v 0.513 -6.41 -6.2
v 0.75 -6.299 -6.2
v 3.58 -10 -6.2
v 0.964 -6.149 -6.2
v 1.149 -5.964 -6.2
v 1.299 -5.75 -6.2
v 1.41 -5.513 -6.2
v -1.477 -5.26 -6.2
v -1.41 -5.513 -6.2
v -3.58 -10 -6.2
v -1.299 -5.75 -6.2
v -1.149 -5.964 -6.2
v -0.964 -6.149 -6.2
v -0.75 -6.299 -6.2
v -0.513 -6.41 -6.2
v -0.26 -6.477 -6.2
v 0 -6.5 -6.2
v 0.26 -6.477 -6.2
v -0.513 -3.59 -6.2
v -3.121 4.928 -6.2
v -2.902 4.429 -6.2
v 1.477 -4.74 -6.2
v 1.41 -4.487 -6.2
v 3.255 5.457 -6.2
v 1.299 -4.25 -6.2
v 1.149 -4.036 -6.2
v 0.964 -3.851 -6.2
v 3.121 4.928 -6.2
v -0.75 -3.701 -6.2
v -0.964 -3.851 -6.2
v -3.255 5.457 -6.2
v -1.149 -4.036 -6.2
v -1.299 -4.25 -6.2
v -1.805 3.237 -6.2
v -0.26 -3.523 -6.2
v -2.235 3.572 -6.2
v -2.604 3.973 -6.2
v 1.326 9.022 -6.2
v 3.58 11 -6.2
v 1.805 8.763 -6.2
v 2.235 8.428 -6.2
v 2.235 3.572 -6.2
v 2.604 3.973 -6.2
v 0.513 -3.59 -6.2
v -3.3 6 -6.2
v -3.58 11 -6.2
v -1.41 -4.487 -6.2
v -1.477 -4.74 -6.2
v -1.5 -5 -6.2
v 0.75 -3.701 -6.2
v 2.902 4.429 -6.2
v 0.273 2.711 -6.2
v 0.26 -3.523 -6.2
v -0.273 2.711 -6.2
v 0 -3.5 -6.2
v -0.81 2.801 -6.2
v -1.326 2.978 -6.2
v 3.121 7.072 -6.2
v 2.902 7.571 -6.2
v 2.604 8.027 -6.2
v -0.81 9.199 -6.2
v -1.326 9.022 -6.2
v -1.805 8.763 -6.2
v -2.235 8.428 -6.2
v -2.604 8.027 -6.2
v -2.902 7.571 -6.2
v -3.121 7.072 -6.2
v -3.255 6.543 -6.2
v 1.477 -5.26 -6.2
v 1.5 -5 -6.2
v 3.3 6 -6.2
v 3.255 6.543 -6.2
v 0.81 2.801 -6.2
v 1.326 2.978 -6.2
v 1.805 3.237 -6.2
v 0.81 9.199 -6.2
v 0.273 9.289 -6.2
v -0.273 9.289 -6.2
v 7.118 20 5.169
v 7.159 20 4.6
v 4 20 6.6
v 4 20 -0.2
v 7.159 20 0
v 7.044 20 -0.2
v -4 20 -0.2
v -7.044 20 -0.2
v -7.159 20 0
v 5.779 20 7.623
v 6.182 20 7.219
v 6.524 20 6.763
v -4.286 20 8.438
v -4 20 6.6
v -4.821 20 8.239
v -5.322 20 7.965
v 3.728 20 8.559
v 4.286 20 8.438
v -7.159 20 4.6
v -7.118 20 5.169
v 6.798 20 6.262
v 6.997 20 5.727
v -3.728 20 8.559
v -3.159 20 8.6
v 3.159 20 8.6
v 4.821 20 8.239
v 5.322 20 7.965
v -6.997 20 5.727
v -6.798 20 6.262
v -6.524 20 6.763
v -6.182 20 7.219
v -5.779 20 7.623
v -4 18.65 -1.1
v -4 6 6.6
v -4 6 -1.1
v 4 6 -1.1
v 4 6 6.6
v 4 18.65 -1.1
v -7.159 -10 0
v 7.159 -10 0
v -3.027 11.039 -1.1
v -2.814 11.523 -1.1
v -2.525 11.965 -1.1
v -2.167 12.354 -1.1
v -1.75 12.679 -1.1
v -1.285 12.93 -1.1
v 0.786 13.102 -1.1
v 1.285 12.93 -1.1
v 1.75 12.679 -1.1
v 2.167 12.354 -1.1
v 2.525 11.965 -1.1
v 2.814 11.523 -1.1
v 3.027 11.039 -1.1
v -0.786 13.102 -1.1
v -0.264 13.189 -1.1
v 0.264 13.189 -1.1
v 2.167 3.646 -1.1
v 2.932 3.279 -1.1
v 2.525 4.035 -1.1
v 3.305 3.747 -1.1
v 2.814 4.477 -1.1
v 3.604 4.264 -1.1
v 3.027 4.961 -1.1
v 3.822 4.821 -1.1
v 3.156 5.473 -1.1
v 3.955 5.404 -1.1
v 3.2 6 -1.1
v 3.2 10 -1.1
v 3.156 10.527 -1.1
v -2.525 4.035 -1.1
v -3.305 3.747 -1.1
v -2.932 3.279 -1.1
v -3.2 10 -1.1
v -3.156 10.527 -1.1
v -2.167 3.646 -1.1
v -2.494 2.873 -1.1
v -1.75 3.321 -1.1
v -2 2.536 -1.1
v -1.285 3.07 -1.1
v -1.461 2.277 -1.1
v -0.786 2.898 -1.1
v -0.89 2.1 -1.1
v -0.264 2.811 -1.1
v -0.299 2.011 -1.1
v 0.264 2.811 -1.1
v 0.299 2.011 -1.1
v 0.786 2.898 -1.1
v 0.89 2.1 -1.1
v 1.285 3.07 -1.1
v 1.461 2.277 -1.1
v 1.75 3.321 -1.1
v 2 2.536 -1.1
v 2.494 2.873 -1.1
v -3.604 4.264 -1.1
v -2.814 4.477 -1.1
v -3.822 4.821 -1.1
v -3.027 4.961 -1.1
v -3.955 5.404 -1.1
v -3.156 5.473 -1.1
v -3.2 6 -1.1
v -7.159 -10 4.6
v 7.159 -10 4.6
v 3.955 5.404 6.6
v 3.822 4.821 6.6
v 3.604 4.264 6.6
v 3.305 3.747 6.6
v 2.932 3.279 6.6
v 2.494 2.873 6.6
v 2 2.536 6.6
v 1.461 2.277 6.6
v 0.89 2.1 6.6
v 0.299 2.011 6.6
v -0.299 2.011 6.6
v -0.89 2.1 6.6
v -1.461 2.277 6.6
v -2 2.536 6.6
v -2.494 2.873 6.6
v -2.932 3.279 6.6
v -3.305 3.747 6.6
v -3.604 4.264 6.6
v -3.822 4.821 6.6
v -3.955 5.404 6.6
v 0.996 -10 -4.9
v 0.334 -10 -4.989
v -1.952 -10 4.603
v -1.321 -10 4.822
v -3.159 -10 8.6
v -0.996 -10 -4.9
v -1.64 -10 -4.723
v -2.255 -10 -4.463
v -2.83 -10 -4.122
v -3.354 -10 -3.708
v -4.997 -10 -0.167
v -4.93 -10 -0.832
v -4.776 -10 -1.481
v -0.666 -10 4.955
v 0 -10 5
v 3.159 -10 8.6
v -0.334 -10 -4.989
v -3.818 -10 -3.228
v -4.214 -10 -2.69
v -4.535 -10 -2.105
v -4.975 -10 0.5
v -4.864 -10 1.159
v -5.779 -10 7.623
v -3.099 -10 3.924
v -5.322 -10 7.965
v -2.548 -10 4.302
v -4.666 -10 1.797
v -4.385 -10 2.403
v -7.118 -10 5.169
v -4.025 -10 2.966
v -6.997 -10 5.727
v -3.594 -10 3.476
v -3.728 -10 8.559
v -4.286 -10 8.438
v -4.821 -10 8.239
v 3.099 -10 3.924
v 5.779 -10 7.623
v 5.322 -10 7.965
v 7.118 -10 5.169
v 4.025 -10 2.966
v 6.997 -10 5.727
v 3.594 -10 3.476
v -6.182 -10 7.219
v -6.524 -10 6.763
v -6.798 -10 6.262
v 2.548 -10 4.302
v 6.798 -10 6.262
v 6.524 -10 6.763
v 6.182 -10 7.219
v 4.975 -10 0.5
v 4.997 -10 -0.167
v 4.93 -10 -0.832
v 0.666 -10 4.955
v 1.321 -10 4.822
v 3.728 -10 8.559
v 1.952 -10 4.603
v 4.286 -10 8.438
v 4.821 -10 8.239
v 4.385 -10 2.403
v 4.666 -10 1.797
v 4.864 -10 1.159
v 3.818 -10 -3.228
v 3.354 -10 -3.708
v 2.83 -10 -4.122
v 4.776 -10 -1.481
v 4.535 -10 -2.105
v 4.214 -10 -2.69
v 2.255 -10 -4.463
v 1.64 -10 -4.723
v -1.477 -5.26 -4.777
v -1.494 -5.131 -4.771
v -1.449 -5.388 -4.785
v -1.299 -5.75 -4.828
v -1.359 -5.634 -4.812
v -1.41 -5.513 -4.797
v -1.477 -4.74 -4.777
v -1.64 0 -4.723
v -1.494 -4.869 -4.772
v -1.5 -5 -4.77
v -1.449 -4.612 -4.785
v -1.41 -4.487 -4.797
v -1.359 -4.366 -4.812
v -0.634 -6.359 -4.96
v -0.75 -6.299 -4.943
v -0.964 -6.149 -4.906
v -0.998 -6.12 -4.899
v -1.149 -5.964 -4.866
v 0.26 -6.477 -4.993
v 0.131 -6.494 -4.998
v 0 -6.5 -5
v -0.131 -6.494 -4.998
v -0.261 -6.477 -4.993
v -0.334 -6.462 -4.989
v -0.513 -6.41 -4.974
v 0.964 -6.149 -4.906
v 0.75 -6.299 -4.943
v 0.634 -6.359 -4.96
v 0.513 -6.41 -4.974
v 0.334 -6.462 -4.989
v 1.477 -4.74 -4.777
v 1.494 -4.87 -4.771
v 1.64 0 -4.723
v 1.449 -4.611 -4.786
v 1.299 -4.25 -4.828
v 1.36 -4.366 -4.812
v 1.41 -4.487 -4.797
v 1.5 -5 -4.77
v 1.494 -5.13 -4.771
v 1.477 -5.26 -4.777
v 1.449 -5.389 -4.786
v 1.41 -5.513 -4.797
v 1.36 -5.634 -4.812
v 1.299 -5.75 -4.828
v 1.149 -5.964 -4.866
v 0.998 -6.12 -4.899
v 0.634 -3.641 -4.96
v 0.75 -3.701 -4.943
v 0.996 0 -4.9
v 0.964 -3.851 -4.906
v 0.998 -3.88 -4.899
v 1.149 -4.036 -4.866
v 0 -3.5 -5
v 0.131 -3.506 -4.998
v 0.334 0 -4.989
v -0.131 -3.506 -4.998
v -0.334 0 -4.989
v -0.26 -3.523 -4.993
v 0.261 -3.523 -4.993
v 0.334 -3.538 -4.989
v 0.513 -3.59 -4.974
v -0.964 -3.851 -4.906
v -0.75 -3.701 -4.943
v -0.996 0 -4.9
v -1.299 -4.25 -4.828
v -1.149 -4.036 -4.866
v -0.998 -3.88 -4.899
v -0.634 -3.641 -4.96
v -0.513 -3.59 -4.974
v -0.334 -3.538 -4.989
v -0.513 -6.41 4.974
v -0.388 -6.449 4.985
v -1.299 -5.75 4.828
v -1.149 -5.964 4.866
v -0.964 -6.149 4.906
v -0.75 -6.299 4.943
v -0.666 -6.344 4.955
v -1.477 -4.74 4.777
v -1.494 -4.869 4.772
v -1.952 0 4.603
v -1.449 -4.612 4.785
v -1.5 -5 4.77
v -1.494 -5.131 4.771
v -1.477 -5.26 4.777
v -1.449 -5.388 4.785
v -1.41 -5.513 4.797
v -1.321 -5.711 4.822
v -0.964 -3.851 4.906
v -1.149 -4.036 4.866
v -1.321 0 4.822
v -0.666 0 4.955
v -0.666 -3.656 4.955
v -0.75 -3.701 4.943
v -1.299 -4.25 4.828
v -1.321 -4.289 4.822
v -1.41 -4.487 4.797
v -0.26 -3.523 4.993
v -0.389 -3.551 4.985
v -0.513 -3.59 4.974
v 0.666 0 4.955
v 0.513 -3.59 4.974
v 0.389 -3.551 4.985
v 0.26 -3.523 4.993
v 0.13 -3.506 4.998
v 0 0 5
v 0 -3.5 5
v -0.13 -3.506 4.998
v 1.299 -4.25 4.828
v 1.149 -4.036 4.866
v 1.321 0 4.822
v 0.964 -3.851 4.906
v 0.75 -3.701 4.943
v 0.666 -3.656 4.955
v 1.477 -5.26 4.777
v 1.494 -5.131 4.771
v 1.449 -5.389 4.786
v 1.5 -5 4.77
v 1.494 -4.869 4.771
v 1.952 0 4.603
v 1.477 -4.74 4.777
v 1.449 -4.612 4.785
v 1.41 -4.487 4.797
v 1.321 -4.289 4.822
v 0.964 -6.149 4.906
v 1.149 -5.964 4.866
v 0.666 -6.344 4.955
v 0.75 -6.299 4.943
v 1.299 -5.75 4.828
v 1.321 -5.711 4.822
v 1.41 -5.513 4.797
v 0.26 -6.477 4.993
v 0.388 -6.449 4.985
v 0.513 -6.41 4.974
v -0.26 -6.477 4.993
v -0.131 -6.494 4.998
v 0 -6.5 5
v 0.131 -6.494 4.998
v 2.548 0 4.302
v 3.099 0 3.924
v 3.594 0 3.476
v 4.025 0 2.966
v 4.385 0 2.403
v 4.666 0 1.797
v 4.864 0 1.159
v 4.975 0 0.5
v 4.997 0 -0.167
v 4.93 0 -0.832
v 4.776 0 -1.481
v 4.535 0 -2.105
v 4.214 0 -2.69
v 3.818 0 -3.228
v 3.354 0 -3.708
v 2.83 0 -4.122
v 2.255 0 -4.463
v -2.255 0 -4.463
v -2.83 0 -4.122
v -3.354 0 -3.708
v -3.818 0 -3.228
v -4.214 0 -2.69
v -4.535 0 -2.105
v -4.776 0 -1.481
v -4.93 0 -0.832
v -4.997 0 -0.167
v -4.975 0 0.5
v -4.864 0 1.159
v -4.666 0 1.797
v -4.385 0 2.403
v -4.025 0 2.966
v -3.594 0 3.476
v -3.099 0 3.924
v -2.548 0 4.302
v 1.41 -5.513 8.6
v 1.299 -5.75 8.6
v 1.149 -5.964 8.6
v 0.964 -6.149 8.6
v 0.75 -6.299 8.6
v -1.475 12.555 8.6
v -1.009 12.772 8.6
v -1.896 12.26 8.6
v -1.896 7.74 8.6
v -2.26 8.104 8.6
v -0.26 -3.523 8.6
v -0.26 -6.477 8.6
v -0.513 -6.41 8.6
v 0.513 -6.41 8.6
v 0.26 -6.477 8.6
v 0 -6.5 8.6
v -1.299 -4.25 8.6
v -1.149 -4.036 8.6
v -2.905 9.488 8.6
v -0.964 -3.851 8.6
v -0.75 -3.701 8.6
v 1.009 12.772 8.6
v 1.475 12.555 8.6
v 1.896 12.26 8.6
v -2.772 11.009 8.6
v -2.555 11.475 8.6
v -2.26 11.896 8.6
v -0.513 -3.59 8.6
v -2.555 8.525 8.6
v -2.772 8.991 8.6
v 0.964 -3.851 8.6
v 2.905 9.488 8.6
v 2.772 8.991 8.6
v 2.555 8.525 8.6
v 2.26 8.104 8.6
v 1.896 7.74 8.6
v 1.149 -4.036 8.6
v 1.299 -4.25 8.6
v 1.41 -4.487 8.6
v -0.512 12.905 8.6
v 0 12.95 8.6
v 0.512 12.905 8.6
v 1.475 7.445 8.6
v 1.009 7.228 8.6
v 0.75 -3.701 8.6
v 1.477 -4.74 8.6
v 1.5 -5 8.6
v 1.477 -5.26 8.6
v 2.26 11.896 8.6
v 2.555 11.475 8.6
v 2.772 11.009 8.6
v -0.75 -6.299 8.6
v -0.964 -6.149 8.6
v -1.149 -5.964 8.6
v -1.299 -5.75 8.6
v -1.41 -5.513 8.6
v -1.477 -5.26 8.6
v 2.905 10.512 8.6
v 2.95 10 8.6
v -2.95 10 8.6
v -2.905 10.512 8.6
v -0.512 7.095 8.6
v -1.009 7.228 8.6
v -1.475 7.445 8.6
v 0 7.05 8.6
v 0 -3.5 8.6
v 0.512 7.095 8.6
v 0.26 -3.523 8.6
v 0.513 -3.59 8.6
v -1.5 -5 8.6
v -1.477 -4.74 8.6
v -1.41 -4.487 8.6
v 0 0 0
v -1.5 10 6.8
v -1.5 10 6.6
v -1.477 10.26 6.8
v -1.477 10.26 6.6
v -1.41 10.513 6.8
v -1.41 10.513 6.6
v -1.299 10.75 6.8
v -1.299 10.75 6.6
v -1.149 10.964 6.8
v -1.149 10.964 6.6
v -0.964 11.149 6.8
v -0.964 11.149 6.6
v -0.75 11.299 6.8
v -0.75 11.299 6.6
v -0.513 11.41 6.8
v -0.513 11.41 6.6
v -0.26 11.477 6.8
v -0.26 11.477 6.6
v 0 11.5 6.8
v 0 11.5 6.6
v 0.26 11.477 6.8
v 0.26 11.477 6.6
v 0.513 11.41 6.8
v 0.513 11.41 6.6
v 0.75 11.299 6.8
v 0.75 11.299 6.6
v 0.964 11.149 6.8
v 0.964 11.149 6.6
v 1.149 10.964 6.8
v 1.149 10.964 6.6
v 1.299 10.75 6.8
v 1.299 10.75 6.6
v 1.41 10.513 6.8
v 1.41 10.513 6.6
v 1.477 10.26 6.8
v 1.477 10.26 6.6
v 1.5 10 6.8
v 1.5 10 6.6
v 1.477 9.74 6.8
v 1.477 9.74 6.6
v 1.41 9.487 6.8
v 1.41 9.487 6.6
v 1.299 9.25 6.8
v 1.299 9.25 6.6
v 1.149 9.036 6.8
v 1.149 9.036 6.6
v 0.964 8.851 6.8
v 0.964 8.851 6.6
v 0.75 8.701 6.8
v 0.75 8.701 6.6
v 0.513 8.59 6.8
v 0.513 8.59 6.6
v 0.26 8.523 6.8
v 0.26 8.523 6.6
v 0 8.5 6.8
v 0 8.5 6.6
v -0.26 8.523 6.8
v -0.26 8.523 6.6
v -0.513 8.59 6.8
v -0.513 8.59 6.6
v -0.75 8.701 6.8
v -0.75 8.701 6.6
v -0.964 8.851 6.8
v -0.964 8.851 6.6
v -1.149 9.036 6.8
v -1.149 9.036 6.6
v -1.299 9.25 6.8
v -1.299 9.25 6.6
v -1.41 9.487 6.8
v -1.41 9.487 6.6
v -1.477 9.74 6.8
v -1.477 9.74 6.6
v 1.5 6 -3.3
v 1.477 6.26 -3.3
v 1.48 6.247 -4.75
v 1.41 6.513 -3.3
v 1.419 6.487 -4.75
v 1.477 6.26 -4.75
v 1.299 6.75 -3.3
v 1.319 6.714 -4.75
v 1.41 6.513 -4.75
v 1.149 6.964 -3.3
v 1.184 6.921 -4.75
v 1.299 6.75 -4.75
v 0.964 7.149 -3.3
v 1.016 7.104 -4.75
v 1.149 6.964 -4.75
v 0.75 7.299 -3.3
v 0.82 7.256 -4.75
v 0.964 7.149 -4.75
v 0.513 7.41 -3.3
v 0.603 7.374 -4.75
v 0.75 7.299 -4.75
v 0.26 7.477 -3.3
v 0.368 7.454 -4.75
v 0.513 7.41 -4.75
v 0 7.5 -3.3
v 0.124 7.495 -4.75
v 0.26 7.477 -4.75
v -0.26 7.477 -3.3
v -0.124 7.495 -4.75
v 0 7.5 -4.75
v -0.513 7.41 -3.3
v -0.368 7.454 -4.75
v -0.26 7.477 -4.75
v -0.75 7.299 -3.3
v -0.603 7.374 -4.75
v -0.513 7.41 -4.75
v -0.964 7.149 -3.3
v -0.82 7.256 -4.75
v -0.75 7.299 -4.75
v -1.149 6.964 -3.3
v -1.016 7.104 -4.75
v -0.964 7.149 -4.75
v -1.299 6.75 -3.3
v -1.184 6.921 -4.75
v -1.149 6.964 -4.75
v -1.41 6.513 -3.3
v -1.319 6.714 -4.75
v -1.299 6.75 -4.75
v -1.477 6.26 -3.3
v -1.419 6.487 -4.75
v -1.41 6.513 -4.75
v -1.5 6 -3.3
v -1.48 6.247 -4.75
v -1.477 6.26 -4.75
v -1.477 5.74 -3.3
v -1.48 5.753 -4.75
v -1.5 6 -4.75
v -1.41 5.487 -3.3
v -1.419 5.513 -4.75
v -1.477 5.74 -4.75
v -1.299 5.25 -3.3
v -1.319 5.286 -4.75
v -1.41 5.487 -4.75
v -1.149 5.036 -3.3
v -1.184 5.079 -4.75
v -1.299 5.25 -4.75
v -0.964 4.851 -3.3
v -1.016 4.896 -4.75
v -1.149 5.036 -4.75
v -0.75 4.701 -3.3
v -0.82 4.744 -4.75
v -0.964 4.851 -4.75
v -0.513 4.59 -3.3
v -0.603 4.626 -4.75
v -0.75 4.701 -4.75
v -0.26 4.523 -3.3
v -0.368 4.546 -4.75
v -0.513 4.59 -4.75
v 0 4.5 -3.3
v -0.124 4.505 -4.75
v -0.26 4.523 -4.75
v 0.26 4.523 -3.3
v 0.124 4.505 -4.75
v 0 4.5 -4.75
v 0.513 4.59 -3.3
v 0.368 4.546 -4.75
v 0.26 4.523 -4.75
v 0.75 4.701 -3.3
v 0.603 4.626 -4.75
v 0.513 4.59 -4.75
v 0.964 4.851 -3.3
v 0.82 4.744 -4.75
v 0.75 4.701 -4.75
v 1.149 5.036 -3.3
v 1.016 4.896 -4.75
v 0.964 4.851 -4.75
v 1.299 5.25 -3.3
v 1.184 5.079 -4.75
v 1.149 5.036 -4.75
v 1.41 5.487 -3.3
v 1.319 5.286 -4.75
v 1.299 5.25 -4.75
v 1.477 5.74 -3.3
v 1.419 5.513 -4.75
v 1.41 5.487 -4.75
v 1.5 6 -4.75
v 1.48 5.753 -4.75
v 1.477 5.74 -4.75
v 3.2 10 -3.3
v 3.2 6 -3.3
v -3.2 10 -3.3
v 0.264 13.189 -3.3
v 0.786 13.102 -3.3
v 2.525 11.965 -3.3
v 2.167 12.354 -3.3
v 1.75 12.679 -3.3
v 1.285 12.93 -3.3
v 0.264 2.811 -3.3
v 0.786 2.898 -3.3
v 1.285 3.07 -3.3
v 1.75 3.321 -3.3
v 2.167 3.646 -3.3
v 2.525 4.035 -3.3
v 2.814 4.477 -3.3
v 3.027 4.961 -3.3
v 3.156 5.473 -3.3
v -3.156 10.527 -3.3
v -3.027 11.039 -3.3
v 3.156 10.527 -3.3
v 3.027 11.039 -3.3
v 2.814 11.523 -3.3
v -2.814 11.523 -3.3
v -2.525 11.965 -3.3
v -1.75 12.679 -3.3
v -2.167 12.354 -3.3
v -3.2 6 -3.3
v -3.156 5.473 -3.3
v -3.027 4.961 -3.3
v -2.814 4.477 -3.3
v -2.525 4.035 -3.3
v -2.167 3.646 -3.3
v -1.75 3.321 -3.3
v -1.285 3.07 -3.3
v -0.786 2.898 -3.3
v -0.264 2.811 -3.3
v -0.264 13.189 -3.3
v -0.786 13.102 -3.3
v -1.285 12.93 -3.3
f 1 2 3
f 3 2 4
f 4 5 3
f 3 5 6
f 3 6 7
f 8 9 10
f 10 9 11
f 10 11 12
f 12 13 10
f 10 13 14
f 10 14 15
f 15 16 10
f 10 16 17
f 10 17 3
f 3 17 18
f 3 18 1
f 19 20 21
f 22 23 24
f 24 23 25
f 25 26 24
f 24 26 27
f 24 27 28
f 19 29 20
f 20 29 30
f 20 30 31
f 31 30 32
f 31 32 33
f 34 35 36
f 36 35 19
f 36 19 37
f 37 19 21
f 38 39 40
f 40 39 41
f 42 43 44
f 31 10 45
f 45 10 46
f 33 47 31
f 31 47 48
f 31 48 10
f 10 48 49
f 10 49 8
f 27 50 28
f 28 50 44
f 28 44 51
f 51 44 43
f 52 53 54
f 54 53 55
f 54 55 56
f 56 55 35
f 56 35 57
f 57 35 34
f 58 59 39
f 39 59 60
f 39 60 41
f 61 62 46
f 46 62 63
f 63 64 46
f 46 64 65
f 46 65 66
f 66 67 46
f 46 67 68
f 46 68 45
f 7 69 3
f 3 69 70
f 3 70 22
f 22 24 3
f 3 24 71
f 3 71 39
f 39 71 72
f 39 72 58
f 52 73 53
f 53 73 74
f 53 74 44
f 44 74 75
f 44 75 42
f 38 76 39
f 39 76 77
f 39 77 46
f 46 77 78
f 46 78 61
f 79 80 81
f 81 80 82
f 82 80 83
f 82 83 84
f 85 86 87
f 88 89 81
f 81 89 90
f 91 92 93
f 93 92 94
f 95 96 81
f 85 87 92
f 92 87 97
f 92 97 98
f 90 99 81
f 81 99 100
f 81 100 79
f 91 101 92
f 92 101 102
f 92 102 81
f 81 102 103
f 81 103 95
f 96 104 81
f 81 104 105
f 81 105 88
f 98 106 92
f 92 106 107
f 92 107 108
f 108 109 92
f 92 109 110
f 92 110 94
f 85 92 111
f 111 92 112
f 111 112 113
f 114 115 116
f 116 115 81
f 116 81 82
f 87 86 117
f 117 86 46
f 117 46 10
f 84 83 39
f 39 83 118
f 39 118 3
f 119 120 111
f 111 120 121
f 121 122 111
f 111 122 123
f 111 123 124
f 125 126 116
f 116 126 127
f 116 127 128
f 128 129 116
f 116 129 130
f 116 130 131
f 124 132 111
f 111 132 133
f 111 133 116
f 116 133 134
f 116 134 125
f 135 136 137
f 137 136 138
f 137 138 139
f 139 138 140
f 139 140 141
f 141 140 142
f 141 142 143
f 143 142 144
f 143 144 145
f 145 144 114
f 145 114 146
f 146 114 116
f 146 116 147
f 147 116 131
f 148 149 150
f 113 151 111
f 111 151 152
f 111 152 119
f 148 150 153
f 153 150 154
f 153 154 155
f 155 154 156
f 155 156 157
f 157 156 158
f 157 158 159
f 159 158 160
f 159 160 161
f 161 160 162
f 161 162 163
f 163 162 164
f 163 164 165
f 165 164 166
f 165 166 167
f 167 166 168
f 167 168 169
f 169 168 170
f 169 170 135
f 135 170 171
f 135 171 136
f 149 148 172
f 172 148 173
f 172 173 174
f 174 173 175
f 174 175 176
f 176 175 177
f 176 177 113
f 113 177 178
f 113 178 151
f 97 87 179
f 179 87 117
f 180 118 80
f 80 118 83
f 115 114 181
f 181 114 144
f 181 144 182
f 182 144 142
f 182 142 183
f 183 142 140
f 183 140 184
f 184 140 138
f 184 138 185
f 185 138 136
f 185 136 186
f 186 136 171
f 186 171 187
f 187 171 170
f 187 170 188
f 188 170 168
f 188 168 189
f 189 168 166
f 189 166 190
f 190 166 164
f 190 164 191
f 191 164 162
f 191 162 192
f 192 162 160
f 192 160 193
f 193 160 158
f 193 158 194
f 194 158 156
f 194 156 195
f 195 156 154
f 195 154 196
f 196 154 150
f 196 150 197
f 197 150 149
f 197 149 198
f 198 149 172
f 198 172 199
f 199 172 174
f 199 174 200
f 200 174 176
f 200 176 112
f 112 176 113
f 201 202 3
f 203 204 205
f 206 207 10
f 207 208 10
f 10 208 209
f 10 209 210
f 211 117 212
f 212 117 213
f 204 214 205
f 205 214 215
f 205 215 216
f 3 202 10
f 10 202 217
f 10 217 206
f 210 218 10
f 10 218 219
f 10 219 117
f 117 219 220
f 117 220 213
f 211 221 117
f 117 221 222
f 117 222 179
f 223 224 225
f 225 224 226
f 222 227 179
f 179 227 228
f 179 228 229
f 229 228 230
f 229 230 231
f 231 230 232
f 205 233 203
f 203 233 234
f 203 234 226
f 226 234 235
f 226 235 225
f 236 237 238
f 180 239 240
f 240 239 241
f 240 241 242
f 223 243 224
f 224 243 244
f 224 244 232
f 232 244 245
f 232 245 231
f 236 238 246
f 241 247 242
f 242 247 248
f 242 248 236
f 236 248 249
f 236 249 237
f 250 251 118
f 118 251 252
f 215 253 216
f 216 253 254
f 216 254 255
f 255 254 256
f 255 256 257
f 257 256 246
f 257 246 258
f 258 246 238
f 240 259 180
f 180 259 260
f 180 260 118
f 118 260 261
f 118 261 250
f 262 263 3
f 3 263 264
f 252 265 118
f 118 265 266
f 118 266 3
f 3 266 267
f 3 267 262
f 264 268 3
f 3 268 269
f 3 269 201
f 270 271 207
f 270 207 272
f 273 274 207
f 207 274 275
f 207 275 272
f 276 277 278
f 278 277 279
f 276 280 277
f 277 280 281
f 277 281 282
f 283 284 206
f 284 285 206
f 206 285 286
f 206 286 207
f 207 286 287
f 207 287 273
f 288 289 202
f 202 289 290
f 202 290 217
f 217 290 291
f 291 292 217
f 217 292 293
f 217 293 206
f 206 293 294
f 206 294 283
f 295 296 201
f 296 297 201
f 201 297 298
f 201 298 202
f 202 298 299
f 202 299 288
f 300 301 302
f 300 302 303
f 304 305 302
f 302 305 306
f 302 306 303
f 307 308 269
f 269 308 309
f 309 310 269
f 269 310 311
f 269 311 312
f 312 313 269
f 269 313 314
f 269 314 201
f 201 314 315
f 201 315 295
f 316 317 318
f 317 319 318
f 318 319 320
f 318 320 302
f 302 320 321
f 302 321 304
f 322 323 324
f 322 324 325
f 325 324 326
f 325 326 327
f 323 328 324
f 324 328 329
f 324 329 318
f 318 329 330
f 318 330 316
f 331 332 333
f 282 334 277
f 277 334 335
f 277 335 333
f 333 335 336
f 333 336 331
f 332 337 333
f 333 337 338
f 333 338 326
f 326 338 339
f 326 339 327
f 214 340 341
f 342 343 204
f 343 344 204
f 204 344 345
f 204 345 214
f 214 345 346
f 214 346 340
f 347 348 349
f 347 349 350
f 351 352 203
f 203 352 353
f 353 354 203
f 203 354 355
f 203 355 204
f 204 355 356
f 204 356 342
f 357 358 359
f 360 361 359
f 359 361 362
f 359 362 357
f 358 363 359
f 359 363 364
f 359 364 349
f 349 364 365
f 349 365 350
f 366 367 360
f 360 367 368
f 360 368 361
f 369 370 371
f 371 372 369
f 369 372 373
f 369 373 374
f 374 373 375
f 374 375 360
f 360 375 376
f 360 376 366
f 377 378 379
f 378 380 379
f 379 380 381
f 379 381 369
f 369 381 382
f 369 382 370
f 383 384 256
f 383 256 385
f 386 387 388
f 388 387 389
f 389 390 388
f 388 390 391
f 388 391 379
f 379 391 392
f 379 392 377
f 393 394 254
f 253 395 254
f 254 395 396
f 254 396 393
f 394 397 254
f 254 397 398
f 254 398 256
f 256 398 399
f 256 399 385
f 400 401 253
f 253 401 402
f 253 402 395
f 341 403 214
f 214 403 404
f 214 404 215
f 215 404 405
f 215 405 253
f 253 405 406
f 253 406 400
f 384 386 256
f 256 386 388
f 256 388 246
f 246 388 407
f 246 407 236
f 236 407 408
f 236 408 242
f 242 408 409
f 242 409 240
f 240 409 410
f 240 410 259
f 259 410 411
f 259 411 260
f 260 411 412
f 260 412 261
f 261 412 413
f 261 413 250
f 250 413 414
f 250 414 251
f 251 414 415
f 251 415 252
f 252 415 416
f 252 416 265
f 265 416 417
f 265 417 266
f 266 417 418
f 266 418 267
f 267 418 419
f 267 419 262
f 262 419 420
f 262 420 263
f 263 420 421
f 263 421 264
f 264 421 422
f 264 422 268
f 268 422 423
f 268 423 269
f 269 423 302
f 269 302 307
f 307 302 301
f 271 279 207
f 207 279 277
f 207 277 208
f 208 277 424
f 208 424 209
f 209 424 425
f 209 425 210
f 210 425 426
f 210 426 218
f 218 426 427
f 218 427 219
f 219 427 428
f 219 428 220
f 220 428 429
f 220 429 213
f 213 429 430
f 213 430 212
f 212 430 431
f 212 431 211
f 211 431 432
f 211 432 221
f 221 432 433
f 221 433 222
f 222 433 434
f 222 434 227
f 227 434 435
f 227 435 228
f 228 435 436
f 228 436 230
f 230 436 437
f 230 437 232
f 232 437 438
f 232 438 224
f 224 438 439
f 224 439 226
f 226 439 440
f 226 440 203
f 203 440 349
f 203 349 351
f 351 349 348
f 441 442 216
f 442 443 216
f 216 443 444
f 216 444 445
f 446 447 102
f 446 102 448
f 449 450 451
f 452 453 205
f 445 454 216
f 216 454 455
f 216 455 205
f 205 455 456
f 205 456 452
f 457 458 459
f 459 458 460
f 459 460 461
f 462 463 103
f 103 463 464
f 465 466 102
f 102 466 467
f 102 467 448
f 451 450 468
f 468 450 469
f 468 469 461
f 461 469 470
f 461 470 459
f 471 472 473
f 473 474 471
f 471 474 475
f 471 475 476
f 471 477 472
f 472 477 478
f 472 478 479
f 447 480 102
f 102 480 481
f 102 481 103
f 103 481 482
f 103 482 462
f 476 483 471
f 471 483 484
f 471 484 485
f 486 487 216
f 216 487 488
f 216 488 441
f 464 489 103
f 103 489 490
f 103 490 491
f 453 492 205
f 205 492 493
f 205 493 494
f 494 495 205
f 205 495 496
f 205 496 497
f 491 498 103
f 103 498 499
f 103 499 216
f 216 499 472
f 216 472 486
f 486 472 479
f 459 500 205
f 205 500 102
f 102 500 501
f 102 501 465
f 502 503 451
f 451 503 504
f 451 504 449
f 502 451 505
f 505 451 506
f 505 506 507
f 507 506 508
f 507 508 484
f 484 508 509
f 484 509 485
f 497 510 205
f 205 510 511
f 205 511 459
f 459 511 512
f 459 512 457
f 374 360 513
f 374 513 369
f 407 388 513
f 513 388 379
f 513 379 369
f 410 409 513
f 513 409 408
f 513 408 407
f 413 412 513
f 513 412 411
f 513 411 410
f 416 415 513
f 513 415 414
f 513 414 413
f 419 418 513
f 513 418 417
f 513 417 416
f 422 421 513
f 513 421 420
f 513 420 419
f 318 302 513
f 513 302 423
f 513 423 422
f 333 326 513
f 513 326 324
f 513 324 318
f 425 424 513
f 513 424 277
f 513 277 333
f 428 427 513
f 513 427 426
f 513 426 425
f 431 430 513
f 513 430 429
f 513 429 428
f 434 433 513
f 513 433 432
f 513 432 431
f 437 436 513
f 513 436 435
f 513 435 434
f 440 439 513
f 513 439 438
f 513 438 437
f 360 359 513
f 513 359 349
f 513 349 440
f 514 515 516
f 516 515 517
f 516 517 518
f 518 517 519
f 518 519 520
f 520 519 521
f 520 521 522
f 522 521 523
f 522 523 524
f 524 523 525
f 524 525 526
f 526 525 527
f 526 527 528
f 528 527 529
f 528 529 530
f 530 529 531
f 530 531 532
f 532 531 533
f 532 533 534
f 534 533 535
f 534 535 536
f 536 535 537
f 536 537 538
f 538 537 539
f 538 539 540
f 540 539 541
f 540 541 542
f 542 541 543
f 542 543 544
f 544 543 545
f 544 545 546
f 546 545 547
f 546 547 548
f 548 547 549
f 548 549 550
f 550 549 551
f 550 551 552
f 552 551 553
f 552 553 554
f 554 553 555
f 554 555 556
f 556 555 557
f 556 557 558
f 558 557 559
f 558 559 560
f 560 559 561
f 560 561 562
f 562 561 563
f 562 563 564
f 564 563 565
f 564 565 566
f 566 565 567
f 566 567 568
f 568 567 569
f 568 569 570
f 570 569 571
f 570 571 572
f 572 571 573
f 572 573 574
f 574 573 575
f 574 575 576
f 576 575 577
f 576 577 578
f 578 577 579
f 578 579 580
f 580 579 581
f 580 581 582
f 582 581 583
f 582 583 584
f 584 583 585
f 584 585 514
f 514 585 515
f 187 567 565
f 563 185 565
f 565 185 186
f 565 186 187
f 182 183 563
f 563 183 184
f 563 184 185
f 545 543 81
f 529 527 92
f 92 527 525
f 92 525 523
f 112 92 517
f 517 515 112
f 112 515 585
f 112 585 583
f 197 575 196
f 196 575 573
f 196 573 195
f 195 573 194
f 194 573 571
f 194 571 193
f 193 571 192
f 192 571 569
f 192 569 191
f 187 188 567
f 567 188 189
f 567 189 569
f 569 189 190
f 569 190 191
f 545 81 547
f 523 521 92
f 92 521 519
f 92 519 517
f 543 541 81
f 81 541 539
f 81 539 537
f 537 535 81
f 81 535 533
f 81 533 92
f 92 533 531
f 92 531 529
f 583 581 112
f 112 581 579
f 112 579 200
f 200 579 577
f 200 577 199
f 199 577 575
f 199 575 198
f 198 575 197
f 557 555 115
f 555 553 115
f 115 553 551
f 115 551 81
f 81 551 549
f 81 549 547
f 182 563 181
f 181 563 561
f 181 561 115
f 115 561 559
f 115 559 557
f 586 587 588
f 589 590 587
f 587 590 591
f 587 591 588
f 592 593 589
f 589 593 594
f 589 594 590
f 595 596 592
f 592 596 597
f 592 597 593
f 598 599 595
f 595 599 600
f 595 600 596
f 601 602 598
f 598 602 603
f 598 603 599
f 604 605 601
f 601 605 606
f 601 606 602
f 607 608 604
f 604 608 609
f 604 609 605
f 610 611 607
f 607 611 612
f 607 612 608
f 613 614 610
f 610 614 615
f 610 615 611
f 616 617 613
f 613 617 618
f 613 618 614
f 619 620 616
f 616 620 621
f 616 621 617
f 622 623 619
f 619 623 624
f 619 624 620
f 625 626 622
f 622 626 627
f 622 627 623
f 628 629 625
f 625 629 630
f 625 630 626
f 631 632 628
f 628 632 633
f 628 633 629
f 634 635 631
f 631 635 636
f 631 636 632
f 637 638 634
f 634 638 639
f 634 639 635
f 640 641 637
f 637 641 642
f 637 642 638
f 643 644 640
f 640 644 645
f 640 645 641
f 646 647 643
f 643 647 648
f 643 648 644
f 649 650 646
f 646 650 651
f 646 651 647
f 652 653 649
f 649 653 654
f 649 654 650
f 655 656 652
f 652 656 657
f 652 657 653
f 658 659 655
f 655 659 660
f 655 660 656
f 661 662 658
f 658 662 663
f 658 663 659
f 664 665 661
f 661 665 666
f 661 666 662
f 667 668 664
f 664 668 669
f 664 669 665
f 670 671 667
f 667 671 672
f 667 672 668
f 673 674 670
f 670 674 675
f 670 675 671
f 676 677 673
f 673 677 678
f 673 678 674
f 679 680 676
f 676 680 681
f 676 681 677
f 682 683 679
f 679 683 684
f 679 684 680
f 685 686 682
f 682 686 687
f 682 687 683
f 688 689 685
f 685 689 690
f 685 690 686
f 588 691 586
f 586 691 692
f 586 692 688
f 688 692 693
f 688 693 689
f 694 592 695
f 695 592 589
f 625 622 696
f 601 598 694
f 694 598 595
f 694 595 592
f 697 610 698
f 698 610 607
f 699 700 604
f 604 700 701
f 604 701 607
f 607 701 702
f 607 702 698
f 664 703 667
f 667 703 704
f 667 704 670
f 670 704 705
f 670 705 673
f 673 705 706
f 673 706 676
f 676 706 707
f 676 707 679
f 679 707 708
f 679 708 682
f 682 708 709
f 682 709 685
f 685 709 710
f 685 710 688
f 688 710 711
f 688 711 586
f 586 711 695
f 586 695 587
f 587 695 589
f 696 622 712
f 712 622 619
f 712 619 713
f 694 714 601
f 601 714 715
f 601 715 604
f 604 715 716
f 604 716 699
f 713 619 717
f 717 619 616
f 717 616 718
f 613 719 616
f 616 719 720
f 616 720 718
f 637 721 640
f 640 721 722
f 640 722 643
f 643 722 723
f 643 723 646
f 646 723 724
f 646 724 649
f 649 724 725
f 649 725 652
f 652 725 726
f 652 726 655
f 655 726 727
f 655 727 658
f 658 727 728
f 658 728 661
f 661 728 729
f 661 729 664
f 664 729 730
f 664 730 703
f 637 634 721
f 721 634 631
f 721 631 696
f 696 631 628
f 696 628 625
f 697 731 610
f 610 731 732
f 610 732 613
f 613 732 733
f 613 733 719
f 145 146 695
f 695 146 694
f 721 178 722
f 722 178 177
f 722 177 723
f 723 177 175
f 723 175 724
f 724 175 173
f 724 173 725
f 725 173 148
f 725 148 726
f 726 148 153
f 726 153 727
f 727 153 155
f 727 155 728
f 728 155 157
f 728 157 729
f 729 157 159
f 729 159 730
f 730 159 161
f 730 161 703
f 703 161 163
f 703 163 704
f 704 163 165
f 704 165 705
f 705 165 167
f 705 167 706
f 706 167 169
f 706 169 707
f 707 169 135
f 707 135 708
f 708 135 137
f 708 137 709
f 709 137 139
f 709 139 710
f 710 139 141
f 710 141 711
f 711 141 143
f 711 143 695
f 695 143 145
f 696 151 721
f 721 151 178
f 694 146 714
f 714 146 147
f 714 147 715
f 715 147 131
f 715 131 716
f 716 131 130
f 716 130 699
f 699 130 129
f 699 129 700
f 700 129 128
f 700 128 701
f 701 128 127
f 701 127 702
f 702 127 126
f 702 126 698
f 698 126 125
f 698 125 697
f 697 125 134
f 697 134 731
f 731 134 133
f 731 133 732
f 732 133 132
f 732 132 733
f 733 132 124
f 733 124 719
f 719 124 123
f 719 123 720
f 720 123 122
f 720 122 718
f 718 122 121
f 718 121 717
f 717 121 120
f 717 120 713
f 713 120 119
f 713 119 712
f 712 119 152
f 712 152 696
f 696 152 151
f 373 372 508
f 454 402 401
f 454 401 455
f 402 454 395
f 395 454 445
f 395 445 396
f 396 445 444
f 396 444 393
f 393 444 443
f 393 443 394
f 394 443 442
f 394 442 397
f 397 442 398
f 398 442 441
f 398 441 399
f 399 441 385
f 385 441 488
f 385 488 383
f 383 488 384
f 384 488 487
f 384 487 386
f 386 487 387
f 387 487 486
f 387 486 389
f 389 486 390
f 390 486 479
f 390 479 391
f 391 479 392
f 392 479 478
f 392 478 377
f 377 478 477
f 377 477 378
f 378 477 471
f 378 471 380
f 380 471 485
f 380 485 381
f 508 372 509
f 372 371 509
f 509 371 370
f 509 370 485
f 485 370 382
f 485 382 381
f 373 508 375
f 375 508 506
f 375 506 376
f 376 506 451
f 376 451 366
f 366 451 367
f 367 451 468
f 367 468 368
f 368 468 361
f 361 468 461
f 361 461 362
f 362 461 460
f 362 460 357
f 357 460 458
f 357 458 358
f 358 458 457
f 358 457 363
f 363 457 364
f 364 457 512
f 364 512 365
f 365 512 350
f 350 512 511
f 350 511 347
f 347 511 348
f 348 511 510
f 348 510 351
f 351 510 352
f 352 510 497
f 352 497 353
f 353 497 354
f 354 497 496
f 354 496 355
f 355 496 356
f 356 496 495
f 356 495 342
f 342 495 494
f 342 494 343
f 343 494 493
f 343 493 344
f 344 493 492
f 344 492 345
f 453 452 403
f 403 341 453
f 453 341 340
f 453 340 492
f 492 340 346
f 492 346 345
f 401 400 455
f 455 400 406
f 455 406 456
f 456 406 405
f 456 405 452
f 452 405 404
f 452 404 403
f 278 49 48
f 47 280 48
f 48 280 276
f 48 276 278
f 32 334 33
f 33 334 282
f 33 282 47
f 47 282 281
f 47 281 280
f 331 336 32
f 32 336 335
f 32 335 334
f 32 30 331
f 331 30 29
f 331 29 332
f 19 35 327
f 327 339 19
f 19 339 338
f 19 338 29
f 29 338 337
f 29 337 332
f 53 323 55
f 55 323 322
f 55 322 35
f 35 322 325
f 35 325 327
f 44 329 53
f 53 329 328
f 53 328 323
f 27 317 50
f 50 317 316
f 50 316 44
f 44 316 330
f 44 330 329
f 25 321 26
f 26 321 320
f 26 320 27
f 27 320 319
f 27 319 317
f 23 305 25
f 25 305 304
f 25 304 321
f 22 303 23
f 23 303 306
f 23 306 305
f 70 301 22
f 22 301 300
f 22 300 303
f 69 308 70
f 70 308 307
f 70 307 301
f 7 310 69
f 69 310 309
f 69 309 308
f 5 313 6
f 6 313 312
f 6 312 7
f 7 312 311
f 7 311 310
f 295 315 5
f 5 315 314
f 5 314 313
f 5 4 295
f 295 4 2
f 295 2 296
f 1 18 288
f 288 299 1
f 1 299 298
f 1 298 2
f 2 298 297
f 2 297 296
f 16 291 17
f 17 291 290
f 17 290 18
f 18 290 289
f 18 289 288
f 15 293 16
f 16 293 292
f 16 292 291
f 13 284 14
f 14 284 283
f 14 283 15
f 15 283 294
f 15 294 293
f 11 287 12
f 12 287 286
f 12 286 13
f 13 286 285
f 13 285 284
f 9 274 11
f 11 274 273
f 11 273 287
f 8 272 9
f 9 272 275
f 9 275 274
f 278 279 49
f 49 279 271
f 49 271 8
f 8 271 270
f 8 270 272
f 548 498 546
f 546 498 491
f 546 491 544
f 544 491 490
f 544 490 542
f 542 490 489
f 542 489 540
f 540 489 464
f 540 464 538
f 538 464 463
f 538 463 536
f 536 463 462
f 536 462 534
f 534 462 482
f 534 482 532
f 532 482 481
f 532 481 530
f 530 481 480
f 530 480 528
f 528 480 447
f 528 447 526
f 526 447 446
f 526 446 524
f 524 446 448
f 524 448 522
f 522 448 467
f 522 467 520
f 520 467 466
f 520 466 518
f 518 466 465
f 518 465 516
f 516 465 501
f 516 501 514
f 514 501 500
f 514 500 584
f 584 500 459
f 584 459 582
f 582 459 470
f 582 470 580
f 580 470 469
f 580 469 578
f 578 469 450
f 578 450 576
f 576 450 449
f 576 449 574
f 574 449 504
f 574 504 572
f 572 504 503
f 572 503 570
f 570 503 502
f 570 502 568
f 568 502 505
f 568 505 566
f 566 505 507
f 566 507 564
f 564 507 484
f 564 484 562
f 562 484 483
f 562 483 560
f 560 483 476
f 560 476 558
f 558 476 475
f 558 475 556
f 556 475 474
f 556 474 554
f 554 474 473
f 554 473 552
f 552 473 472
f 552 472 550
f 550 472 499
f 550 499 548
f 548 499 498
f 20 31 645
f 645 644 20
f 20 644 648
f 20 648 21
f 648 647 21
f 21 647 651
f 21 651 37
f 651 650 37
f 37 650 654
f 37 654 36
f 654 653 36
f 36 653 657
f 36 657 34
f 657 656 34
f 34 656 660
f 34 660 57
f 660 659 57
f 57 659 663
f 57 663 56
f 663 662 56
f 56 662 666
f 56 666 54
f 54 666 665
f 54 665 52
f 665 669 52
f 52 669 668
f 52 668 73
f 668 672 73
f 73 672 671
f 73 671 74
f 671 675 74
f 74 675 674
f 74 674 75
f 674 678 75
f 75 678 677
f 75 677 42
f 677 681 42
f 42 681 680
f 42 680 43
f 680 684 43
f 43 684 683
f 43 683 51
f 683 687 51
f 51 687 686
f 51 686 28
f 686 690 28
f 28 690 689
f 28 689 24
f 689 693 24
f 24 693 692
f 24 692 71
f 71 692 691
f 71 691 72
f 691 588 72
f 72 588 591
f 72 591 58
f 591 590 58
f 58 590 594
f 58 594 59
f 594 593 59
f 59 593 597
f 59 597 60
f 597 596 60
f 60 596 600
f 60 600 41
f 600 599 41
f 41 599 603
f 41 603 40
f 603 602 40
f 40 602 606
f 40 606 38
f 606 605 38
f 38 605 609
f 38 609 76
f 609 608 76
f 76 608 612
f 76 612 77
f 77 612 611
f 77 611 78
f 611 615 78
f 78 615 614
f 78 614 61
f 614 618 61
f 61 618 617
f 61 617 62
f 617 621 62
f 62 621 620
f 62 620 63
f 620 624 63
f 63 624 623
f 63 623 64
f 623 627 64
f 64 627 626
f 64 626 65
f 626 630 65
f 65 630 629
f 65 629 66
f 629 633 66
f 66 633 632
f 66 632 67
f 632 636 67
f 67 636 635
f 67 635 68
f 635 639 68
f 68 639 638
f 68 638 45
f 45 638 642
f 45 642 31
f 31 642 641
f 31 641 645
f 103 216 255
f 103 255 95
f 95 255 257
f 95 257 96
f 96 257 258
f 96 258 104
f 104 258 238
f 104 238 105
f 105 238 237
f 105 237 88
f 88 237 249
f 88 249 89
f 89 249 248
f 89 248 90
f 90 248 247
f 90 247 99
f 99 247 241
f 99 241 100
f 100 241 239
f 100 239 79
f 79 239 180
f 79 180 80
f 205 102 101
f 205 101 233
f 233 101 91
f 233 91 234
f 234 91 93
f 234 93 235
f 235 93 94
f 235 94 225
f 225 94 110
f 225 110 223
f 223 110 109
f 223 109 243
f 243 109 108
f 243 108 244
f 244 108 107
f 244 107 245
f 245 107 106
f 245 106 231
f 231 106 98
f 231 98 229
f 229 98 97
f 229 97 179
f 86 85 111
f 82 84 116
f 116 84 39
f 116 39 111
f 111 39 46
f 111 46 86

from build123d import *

# Parameters (mm, degrees)
CROQUIS1_R                 = 5
SALIENTE_EXTRUIR1_DEPTH    = 10
SALIENTE_EXTRUIR2_START    = 6.6
CROQUIS3_R                 = 1.5
SALIENTE_EXTRUIR2_DEPTH    = 2
SALIENTE_EXTRUIR3_START    = -3.3
CROQUIS3_3_R               = 1.5
SALIENTE_EXTRUIR3_DEPTH    = 2.9
SALIENTE_EXTRUIR4_START    = -1.1
SALIENTE_EXTRUIR4_DEPTH    = 5.1
SALIENTE_EXTRUIR5_START    = -6.2
SALIENTE_EXTRUIR5_DEPTH    = 14.8
CORTAR_EXTRUIR1_DEPTH      = 31
SALIENTE_EXTRUIR6_DEPTH    = 10
CROQUIS5_R                 = 1.5
CORTAR_EXTRUIR2_DEPTH      = 15.8
CHAFL_N1_SIZE              = 1.45
CHAFL_N1_SIZE2             = 1.8
CHAFL_N2_SIZE              = 1.45
CHAFL_N2_SIZE2             = 1.8
REDONDEO1_R                = 4
CORTAR_EXTRUIR3_DEPTH      = 8.159143338
CORTAR_EXTRUIR3_DEPTH_BACK = 8.159143338


with BuildPart() as part:
    # Croquis1 → Saliente-Extruir1 (new body)
    with BuildSketch(Plane(origin=(0, 0, 0), x_dir=(1, 0, 0), z_dir=(0, 1, 0))):
        Polygon((7.159143338, 0), (3.579571669, 6.2), (-3.579571669, 6.2), (-7.159143338, 0), (-3.579571669, -6.2), (3.579571669, -6.2), align=None)
        Circle(CROQUIS1_R, mode=Mode.SUBTRACT)
    extrude(amount=-SALIENTE_EXTRUIR1_DEPTH)



with BuildPart() as body_2:
    # Croquis3 → Saliente-Extruir2 (new body)
    with BuildSketch(Plane.XY.offset(SALIENTE_EXTRUIR2_START)):
        with BuildLine():
            Line((-4, 6), (-4, 20))
            Line((-4, 20), (4, 20))
            Line((4, 20), (4, 6))
            ThreePointArc((4, 6), (0, 2), (-4, 6))
        make_face()
        with BuildLine():
            ThreePointArc((3.2, 10), (0, 13.2), (-3.2, 10))
            Line((-3.2, 10), (-3.2, 6))
            ThreePointArc((-3.2, 6), (0, 2.8), (3.2, 6))
            Line((3.2, 6), (3.2, 10))
        make_face(mode=Mode.SUBTRACT)
        with BuildLine():
            Line((3.2, 6), (3.2, 10))
            ThreePointArc((3.2, 10), (0, 13.2), (-3.2, 10))
            Line((-3.2, 10), (-3.2, 6))
            ThreePointArc((-3.2, 6), (0, 2.8), (3.2, 6))
        make_face()
        with Locations((0, 6)):
            Circle(CROQUIS3_R, mode=Mode.SUBTRACT)
        with Locations((0, 10)):
            Circle(CROQUIS3_R, mode=Mode.SUBTRACT)
        with Locations((0, 6)):
            Circle(CROQUIS3_R)
    extrude(amount=SALIENTE_EXTRUIR2_DEPTH)


with BuildPart() as body_3:
    # Croquis3<3> → Saliente-Extruir3 (new body)
    with BuildSketch(Plane.XY.offset(SALIENTE_EXTRUIR3_START)):
        with BuildLine():
            Line((3.2, 6), (3.2, 10))
            ThreePointArc((3.2, 10), (0, 13.2), (-3.2, 10))
            Line((-3.2, 10), (-3.2, 6))
            ThreePointArc((-3.2, 6), (0, 2.8), (3.2, 6))
        make_face()
        with Locations((0, 6)):
            Circle(CROQUIS3_3_R, mode=Mode.SUBTRACT)
        with Locations((0, 10)):
            Circle(CROQUIS3_3_R, mode=Mode.SUBTRACT)
        with Locations((0, 10)):
            Circle(CROQUIS3_3_R)
    extrude(amount=-SALIENTE_EXTRUIR3_DEPTH)

    # Croquis3<4> → Saliente-Extruir4 (add)
    with BuildSketch(Plane.XY.offset(SALIENTE_EXTRUIR4_START)):
        with BuildLine():
            Line((-4, 6), (-4, 20))
            Line((-4, 20), (4, 20))
            Line((4, 20), (4, 6))
            ThreePointArc((4, 6), (0, 2), (-4, 6))
        make_face()
        with BuildLine():
            ThreePointArc((3.2, 10), (0, 13.2), (-3.2, 10))
            Line((-3.2, 10), (-3.2, 6))
            ThreePointArc((-3.2, 6), (0, 2.8), (3.2, 6))
            Line((3.2, 6), (3.2, 10))
        make_face(mode=Mode.SUBTRACT)
    extrude(amount=-SALIENTE_EXTRUIR4_DEPTH)


with BuildPart() as part_1:
    add(part.part)

    add(body_2.part)  # Saliente-Extruir5 merges body 2

    add(body_3.part)  # Saliente-Extruir5 merges body 3
    # Croquis3<6> → Saliente-Extruir5 (add)
    with BuildSketch(Plane.XY.offset(SALIENTE_EXTRUIR5_START)):
        with BuildLine():
            ThreePointArc((-4, 6), (0, 2), (4, 6))
            Line((4, 6), (4, 20))
            Line((4, 20), (7.159143338, 20))
            Line((7.159143338, 20), (7.159143338, 0))
            Line((7.159143338, 0), (-7.159143338, 0))
            Line((-7.159143338, 0), (-7.159143338, 20))
            Line((-7.159143338, 20), (-4, 20))
            Line((-4, 20), (-4, 6))
        make_face()
    extrude(amount=SALIENTE_EXTRUIR5_DEPTH)

    # Croquis4 → Cortar-Extruir1 (cut, through all)
    with BuildSketch(Plane(origin=(0, -10, 0), x_dir=(-1, 0, 0), z_dir=(0, -1, 0))):
        Polygon((7.159143338, 6.2), (7.159143338, 0), (3.579571669, 6.2), align=None)
        Polygon((-7.159143338, 6.2), (-3.579571669, 6.2), (-7.159143338, 0), align=None)
    extrude(amount=-CORTAR_EXTRUIR1_DEPTH, mode=Mode.SUBTRACT)

    # Croquis4<3> → Saliente-Extruir6 (add)
    with BuildSketch(Plane(origin=(0, -10, 0), x_dir=(-1, 0, 0), z_dir=(0, -1, 0))):
        Polygon((-7.159143338, -8.6), (7.159143338, -8.6), (7.159143338, 0), (3.579571669, -6.2), (-3.579571669, -6.2), (-7.159143338, 0), align=None)
    extrude(amount=-SALIENTE_EXTRUIR6_DEPTH)

    # Croquis5 → Cortar-Extruir2 (cut, through all)
    with BuildSketch(Plane(origin=(0, 0, -6.2), x_dir=(-1, 0, 0), z_dir=(0, 0, -1))):
        with Locations((0, -5)):
            Circle(CROQUIS5_R)
    extrude(amount=-CORTAR_EXTRUIR2_DEPTH, mode=Mode.SUBTRACT)

    # Chaflán1
    chafl_n1_edges = [part_1.edges().sort_by_distance(p)[0] for p in [
        (-1.5, 10, 8.6),
    ]]
    chafl_n1_side = [part_1.faces().sort_by_distance(p)[0] for p in [
        (0, 5.085079308, 8.6),
    ]]
    chamfer(chafl_n1_edges, length=CHAFL_N1_SIZE, length2=CHAFL_N1_SIZE2, reference=chafl_n1_side[0])

    # Chaflán2
    chafl_n2_edges = [part_1.edges().sort_by_distance(p)[0] for p in [
        (-1.5, 6, -6.2),
    ]]
    chafl_n2_side = [part_1.faces().sort_by_distance(p)[0] for p in [
        (-1.5, 6, -4.75),
    ]]
    chamfer(chafl_n2_edges, length=CHAFL_N2_SIZE, length2=CHAFL_N2_SIZE2, reference=chafl_n2_side[0])

    # Redondeo1
    redondeo1_edges = [part_1.edges().sort_by_distance(p)[0] for p in [
        (7.159143338, 5, 8.6),
        (-7.159143338, 5, 8.6),
    ]]
    fillet(redondeo1_edges, radius=REDONDEO1_R)

    # Croquis6 → Cortar-Extruir3 (cut, two sides)
    with BuildSketch(Plane(origin=(0, 0, 0), x_dir=(0, 0, -1), z_dir=(1, 0, 0))) as cortar_extruir3_sk:
        Polygon((6.2, 20), (0.2, 20), (6.2, 11), align=None)
    extrude(amount=CORTAR_EXTRUIR3_DEPTH, mode=Mode.SUBTRACT)
    extrude(cortar_extruir3_sk.sketch, amount=-CORTAR_EXTRUIR3_DEPTH_BACK, mode=Mode.SUBTRACT)


solid = part_1.part
